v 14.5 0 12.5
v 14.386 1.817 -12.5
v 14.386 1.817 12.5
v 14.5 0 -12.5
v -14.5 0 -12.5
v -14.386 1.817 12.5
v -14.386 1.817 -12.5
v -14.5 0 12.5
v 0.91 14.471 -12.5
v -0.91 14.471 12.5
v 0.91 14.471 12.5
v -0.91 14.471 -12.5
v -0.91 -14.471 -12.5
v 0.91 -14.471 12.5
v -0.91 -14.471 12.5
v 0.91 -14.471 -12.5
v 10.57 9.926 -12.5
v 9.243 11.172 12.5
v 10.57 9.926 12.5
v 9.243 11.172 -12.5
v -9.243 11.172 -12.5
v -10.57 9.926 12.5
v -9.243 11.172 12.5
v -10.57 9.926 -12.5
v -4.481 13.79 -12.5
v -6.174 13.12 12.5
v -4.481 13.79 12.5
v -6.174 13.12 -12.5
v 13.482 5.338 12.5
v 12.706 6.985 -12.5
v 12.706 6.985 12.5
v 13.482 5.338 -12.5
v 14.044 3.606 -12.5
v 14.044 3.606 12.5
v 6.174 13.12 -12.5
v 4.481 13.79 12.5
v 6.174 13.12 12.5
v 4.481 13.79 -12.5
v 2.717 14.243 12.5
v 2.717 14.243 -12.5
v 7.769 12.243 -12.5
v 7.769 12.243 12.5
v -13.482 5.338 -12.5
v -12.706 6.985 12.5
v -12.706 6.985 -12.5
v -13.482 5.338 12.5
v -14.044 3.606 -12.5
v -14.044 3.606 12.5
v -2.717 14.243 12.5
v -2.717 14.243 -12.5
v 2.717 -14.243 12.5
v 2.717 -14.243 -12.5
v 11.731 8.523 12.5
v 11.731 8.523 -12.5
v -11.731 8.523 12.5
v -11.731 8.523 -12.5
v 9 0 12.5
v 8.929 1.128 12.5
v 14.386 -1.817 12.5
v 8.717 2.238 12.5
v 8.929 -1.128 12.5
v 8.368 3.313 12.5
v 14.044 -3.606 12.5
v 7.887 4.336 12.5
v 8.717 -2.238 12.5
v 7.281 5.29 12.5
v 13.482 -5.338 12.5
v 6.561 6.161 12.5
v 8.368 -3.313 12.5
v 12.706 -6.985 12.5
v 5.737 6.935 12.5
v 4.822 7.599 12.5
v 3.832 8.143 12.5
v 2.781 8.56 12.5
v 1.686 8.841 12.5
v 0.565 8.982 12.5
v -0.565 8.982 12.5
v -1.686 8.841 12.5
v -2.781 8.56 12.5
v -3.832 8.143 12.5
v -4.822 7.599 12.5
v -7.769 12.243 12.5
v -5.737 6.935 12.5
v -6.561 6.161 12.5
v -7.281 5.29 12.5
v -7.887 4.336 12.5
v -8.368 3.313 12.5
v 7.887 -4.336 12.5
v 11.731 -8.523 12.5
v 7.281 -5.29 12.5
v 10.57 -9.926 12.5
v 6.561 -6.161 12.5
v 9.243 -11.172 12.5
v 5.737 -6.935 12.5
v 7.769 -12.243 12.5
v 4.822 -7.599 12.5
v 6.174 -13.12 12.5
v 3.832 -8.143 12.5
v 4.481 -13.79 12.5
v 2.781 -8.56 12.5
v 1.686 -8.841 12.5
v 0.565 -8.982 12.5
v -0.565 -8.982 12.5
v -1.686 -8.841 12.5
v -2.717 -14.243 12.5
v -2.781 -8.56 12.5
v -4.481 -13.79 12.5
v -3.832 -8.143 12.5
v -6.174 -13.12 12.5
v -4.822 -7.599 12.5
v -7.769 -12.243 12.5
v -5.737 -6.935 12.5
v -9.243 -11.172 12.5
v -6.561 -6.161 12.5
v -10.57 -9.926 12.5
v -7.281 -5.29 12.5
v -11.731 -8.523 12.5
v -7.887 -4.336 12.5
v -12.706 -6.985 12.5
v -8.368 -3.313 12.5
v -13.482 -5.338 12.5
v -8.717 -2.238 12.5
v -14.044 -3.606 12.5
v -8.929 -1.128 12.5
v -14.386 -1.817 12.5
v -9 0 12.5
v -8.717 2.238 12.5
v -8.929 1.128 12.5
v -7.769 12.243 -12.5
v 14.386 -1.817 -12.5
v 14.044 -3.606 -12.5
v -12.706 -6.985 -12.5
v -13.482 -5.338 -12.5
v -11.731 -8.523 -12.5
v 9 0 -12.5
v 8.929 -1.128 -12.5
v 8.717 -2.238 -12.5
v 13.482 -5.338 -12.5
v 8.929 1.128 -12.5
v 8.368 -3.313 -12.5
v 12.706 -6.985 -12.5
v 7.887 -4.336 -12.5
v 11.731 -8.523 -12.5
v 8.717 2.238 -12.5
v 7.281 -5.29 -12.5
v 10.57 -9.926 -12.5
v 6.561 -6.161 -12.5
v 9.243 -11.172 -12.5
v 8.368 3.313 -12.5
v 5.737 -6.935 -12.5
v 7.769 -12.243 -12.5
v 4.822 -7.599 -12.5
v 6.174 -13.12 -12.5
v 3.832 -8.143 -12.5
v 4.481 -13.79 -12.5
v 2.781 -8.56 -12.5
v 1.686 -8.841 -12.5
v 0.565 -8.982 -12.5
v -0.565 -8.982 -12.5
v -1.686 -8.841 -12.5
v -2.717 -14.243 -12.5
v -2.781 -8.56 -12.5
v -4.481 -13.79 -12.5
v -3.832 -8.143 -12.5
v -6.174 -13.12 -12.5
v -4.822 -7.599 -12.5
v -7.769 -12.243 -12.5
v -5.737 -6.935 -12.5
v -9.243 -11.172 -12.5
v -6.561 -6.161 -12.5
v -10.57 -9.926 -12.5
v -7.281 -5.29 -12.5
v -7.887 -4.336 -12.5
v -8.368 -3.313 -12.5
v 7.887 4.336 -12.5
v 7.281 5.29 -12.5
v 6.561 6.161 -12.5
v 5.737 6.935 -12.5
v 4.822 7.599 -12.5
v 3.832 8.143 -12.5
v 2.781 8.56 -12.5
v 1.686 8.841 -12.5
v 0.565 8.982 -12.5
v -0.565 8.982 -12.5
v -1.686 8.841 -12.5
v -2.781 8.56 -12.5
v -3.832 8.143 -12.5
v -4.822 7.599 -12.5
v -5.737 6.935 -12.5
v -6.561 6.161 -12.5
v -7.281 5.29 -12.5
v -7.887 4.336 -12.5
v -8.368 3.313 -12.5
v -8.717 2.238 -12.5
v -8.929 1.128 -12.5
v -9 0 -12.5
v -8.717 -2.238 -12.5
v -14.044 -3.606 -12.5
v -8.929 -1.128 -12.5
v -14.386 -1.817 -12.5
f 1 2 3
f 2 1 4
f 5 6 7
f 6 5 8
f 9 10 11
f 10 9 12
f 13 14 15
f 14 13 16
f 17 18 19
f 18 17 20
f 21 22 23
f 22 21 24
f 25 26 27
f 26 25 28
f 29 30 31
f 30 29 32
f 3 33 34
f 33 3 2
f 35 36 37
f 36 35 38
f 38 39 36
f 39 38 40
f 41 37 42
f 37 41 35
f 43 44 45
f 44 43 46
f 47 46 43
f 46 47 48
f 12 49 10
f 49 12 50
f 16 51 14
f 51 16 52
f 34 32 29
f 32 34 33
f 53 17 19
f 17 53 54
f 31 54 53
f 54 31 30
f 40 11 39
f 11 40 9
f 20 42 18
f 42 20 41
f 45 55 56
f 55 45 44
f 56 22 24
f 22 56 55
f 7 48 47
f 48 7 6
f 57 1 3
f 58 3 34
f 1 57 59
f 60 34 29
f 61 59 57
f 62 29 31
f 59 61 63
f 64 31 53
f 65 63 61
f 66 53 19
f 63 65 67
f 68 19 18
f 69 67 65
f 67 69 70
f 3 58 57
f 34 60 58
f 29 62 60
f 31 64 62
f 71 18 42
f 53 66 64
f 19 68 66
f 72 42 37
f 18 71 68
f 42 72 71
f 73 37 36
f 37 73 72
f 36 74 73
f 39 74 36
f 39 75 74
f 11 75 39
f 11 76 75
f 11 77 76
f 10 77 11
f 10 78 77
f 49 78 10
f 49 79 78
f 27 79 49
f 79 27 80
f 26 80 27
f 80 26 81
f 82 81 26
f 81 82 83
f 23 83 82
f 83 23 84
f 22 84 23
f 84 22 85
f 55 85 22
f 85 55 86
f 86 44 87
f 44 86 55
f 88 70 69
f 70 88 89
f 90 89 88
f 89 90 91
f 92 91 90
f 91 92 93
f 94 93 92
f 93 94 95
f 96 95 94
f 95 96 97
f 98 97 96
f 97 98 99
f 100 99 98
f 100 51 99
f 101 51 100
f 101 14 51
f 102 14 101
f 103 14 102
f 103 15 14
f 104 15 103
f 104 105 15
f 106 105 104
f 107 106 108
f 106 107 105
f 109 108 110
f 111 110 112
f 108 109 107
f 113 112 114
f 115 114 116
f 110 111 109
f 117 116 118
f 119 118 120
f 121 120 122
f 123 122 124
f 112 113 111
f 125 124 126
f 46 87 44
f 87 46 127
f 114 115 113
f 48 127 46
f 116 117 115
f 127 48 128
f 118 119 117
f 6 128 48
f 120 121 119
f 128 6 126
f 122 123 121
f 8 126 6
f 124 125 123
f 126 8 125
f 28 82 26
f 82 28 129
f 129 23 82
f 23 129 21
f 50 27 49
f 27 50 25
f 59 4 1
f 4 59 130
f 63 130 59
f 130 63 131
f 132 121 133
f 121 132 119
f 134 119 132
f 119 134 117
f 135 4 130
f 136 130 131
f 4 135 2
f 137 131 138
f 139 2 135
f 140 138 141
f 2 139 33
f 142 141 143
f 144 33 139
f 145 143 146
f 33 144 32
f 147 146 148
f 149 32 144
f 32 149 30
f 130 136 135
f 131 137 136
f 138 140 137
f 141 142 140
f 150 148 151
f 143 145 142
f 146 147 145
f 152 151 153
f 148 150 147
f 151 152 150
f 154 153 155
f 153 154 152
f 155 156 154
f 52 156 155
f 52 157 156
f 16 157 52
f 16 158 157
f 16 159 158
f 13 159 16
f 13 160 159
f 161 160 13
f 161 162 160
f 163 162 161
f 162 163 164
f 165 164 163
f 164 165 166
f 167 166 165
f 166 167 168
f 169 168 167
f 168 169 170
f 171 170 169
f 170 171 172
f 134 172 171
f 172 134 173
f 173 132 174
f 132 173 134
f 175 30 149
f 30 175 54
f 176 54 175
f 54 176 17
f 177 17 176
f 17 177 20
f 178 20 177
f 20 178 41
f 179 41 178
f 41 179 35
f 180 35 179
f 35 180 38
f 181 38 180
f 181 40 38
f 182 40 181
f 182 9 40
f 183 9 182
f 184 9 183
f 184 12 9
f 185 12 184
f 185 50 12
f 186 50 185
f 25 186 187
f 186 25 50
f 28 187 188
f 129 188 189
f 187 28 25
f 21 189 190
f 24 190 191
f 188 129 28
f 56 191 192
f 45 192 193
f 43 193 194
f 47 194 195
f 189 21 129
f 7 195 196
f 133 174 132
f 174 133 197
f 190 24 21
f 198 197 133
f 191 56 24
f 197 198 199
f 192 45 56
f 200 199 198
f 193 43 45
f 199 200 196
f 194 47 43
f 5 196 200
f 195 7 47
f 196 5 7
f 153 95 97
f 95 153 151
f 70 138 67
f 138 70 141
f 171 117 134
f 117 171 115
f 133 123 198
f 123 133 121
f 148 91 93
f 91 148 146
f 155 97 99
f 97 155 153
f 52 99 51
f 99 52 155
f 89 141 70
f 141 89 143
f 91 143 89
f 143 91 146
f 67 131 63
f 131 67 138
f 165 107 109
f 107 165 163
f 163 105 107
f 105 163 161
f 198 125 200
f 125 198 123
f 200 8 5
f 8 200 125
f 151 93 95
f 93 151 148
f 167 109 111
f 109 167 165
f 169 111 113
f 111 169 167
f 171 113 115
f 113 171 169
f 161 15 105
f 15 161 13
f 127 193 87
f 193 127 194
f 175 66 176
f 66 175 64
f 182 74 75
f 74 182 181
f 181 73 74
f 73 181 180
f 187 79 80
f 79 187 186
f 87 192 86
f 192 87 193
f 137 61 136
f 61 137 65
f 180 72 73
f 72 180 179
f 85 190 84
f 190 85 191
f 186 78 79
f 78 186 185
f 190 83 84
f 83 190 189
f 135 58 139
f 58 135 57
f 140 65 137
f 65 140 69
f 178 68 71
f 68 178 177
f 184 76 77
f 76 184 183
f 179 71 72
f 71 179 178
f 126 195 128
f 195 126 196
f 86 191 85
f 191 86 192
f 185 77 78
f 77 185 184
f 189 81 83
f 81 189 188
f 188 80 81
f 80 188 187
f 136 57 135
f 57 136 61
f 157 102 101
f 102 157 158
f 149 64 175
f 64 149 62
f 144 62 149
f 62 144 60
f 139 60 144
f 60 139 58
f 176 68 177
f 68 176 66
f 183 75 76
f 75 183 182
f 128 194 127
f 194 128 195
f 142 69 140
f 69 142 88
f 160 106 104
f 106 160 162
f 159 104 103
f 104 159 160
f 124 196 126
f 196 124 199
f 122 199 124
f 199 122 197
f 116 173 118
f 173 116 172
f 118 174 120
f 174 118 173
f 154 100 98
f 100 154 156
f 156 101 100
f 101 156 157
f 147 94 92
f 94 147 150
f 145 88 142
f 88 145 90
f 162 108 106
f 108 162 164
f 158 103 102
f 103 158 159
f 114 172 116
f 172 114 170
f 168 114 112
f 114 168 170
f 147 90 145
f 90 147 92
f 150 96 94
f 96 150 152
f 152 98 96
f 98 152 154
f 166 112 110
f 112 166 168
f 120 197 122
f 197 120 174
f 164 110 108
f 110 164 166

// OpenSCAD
$fn = 50;


difference() {
	union() {
		translate(v = [0, 0, -12.5000000000]) {
			cylinder(h = 25, r = 14.5000000000);
		}
	}
	union() {
		translate(v = [0, 0, -100.0000000000]) {
			cylinder(h = 200, r = 9);
		}
	}
}
